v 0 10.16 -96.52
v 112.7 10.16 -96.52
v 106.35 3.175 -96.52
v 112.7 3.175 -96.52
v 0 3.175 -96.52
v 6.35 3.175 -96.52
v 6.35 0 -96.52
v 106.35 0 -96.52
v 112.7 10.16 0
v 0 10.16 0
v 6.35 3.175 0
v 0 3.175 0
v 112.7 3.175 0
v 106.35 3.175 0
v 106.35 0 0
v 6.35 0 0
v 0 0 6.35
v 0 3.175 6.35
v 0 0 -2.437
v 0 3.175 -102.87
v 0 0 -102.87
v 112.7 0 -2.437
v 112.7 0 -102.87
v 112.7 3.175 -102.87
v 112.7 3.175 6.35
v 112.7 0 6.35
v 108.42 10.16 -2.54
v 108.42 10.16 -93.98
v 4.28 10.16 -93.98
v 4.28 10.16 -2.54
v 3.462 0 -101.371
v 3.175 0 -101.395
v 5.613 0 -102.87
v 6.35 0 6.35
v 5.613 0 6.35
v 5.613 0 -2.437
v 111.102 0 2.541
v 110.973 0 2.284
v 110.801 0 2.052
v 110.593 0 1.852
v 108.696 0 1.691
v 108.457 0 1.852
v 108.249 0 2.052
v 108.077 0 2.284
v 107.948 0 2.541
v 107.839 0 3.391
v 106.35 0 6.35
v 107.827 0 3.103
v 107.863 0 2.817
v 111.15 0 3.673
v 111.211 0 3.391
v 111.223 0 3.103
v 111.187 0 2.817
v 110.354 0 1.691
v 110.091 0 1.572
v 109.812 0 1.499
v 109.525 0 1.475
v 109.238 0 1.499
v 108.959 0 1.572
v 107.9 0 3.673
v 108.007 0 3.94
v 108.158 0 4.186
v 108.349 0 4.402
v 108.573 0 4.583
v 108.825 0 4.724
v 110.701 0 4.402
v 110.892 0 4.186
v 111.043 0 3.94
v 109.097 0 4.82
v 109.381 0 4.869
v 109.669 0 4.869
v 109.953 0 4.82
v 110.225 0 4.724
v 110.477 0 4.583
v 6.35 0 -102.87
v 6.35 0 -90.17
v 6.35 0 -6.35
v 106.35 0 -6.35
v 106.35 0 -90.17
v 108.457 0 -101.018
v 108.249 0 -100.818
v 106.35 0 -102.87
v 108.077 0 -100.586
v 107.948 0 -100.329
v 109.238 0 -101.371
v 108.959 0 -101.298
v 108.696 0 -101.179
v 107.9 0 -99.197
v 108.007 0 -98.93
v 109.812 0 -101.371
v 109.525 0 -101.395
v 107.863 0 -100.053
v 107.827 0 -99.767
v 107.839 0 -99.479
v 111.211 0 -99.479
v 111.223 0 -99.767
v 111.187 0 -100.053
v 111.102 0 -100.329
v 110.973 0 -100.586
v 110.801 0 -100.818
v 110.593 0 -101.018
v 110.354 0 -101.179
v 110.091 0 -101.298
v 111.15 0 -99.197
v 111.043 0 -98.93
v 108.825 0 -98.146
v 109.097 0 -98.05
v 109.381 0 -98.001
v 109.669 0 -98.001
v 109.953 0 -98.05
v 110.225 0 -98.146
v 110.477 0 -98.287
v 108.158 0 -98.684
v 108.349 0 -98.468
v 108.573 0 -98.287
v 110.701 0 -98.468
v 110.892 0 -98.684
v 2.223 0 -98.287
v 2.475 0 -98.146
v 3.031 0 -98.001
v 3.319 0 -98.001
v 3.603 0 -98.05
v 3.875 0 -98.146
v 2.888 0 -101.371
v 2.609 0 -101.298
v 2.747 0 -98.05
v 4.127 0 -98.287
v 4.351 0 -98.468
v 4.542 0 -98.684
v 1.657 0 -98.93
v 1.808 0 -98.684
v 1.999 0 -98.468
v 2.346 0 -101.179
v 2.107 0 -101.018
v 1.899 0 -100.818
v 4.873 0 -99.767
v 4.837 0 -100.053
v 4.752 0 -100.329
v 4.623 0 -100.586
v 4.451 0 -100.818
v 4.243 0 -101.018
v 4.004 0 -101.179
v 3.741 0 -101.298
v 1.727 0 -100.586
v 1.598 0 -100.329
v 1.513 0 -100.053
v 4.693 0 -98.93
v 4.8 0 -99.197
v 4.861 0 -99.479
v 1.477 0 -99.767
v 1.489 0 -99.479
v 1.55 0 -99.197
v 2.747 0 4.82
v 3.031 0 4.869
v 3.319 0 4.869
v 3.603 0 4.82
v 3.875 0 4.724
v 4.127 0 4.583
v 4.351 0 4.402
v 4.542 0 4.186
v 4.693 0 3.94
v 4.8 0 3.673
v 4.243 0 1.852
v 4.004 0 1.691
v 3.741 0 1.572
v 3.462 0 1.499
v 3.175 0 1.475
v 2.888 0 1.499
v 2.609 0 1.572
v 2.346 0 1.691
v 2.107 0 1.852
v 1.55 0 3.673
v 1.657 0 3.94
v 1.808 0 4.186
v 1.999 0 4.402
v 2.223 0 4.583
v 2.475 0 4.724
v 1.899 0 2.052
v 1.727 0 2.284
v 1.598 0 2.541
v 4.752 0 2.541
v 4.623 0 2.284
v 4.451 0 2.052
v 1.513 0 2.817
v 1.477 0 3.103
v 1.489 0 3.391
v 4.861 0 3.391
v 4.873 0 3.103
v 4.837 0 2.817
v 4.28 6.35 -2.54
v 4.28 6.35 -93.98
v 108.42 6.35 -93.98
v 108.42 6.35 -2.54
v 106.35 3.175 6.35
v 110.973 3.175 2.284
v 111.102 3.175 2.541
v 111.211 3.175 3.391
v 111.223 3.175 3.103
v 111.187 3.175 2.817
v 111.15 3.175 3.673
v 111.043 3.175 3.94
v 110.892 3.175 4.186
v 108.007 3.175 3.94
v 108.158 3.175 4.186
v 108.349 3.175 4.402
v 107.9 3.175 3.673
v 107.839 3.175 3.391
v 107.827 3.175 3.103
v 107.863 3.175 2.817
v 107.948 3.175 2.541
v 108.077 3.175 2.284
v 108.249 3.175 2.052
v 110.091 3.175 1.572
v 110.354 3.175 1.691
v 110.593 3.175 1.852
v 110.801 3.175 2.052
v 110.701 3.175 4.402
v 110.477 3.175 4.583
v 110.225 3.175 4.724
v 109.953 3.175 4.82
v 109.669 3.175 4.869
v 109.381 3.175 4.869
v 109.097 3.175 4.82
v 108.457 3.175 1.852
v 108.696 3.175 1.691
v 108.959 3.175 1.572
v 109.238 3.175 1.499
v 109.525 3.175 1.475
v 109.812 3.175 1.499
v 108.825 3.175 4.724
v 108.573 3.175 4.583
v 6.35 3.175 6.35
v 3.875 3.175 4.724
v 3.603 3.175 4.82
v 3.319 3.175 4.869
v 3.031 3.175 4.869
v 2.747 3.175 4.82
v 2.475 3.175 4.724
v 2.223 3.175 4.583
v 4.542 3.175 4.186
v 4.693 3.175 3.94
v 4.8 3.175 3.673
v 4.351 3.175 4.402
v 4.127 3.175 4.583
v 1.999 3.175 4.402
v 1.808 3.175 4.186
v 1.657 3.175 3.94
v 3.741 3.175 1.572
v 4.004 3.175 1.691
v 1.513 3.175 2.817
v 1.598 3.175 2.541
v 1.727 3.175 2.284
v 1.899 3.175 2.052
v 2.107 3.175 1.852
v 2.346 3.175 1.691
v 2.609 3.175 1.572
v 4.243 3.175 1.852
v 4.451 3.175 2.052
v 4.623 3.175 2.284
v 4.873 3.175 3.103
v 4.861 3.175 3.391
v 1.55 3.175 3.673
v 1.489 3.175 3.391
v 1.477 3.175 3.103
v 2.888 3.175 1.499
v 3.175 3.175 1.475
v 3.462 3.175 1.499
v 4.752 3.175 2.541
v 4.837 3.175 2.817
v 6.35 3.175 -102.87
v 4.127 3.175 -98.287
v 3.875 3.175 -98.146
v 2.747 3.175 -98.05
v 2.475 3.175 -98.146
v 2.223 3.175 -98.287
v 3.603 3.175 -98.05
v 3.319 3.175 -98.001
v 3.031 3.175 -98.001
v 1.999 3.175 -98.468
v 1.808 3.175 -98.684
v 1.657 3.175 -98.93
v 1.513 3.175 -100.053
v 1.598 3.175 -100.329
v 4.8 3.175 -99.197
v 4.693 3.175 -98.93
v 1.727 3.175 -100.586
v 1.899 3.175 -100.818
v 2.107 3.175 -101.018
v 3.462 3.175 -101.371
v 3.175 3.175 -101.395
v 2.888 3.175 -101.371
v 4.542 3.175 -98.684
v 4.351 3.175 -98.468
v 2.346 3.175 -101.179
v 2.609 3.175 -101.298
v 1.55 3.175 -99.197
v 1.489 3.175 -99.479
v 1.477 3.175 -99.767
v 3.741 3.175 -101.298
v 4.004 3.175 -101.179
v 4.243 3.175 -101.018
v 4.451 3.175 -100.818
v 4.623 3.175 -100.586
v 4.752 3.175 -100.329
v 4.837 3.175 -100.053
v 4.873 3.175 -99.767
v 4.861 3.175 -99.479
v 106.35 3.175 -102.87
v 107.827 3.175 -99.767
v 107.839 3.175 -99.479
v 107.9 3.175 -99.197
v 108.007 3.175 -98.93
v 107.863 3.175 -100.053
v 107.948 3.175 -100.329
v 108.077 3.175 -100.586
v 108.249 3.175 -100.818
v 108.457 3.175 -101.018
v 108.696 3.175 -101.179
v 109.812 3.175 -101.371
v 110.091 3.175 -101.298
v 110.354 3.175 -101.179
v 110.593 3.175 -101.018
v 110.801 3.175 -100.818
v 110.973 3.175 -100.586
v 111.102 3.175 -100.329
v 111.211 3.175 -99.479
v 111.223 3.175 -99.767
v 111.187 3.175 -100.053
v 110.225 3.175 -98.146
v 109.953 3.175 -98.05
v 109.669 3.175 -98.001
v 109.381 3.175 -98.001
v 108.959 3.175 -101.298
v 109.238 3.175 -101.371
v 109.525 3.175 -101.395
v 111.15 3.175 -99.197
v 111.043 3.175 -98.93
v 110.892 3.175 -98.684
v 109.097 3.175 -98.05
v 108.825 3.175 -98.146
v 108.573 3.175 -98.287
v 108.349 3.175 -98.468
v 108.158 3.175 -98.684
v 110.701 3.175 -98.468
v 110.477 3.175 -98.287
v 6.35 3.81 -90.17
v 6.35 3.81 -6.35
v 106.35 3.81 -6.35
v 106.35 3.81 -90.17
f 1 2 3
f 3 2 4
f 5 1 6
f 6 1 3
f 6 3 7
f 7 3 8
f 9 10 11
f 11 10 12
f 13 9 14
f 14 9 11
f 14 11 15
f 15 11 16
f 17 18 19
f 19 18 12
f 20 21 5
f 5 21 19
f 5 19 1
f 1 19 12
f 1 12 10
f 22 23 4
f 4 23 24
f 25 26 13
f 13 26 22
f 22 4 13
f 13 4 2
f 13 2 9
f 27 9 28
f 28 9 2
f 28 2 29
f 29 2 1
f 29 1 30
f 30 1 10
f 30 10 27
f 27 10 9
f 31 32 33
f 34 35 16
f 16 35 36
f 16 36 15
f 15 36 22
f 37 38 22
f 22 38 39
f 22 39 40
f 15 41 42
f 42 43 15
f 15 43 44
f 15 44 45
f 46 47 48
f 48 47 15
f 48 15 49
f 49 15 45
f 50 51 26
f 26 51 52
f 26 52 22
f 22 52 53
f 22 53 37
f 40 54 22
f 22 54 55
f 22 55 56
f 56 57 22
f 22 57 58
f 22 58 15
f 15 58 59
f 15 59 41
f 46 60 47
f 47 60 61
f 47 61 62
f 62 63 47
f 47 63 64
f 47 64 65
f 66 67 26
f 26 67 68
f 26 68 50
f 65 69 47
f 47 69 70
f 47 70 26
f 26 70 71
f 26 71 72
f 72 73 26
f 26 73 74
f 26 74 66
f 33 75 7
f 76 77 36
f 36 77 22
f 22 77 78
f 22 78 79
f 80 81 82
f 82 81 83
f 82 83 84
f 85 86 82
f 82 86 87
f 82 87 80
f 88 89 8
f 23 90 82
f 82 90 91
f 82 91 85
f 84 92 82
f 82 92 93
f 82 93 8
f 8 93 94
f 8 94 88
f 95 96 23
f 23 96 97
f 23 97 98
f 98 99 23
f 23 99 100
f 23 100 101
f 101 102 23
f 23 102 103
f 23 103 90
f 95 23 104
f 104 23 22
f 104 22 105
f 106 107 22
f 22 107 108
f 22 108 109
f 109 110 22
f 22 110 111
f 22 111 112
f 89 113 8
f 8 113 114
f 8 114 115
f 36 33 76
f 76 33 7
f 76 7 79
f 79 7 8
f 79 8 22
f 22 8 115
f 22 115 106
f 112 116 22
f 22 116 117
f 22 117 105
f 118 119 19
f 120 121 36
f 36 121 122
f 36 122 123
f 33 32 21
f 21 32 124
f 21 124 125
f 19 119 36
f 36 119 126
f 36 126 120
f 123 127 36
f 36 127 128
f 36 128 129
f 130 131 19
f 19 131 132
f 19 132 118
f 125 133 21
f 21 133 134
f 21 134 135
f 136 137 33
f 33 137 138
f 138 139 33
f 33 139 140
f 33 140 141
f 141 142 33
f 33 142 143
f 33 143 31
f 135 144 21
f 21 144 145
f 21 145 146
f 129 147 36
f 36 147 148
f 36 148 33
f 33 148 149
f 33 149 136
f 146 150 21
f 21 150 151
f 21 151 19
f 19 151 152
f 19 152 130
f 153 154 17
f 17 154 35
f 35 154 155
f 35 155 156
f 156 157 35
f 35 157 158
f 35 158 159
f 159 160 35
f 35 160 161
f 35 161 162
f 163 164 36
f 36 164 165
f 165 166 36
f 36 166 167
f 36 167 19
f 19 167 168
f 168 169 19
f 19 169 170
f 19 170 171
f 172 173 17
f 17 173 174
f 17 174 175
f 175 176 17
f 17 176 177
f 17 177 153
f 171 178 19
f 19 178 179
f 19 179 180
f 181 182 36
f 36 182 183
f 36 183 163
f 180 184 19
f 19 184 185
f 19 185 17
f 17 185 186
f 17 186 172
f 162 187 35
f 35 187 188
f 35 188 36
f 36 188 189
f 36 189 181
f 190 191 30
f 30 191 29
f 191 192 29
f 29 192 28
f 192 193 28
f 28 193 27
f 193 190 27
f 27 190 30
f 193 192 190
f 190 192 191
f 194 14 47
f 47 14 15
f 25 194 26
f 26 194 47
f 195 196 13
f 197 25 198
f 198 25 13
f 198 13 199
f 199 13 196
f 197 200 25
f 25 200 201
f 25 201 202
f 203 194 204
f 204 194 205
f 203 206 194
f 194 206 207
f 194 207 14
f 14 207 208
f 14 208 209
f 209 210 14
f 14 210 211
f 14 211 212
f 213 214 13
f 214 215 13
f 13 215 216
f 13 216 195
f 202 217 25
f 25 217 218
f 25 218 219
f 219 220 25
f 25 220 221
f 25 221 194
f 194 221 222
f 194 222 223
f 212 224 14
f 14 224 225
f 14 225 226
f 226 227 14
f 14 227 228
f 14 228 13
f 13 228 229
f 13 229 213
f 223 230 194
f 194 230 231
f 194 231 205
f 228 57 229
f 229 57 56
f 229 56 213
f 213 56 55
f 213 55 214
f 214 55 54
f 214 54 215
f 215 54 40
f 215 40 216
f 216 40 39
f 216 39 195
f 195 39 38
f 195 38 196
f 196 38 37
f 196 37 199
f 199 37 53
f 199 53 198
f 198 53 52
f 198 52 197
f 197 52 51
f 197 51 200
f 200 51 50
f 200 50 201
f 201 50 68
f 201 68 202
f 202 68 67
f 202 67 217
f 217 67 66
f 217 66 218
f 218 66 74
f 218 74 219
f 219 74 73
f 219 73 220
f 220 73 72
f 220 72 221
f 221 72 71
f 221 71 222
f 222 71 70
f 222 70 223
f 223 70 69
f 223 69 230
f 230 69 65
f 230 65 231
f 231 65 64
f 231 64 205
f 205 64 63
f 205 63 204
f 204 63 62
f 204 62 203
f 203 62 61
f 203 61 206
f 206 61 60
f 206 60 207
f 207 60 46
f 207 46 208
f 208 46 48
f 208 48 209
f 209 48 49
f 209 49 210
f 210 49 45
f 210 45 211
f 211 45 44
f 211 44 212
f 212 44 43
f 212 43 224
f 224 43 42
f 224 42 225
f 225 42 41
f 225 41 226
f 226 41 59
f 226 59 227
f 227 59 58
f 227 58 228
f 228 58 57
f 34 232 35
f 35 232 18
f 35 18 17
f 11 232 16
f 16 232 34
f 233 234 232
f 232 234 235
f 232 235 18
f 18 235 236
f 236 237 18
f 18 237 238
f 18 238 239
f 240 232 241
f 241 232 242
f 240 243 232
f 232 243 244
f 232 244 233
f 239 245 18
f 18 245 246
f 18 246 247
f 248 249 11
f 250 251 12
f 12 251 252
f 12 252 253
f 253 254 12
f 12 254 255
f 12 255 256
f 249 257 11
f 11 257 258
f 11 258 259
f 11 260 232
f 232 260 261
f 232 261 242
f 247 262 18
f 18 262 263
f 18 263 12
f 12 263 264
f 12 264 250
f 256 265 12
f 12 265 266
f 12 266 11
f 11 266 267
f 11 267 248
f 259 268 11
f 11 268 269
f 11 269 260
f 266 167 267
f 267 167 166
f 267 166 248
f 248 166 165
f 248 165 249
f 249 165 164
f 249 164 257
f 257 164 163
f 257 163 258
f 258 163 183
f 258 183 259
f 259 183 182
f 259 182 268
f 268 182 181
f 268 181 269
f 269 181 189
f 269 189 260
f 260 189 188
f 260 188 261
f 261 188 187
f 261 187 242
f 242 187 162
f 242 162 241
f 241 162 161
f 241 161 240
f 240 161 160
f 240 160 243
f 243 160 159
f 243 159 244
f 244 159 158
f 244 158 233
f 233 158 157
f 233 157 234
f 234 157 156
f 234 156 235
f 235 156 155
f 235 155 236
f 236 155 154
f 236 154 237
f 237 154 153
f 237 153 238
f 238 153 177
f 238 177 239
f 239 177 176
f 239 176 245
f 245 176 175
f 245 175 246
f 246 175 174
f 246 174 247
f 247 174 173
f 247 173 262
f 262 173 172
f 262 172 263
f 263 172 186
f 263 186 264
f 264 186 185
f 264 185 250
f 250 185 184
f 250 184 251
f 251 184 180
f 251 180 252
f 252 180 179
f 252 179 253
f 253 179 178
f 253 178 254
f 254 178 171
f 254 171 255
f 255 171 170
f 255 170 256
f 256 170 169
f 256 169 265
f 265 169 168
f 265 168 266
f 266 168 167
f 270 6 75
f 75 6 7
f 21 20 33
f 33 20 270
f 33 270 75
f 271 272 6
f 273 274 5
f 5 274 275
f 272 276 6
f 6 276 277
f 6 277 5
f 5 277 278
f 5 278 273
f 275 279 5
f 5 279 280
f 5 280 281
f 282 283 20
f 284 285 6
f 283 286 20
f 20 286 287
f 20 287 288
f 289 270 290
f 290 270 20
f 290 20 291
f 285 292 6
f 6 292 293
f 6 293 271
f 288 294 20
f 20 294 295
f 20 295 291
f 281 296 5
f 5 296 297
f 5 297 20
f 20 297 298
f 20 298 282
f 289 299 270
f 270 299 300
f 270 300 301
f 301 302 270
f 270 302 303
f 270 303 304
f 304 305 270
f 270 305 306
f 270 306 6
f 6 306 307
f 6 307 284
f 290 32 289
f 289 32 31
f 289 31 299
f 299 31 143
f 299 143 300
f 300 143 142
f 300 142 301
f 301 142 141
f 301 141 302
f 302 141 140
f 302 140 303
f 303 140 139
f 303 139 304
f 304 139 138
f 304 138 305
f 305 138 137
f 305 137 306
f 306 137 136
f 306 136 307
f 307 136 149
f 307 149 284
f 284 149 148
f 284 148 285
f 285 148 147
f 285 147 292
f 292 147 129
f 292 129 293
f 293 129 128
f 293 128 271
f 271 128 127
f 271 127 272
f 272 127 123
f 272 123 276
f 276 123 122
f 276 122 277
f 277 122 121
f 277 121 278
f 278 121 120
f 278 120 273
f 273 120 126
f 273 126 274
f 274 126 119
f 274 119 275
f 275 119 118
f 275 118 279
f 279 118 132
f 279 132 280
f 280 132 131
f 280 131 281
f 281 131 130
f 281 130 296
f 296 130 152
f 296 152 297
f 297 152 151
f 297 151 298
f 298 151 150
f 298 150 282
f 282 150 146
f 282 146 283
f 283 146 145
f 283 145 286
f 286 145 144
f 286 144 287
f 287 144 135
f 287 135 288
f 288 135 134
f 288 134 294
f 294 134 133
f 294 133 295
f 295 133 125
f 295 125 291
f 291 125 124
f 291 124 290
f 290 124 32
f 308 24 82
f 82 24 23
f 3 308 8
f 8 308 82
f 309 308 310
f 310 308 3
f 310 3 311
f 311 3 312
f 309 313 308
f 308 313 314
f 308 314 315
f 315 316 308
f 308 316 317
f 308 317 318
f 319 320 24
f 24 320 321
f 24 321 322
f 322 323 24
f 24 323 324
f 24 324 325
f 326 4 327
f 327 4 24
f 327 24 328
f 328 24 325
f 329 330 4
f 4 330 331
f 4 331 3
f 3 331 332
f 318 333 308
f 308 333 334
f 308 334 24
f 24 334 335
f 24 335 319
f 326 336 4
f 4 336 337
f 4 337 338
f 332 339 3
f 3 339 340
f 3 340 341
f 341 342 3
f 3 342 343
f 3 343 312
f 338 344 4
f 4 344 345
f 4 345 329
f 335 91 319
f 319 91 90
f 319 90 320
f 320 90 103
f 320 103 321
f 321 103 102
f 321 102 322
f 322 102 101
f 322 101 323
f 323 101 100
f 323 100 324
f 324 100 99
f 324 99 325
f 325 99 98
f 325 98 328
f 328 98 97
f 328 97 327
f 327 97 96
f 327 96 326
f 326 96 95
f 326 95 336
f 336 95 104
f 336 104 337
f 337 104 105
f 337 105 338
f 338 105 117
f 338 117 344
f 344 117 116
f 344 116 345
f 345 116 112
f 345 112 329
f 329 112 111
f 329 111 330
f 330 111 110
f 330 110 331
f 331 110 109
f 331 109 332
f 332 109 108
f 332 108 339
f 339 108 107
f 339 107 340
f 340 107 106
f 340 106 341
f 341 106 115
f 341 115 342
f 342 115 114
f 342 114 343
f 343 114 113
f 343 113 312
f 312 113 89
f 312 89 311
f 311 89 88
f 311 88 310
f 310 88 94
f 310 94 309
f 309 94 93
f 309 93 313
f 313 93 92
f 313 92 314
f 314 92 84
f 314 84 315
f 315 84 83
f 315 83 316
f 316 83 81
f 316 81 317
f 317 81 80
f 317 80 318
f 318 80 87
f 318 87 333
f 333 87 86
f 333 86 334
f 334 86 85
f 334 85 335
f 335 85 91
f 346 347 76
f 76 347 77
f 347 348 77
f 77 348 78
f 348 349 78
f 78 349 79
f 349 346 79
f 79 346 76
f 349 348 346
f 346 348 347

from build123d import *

# Parameters (mm, degrees)
SKETCH1_W           = 112.699999898
SKETCH1_H           = 96.52
BOSS_EXTRUDE1_DEPTH = 10.16
SKETCH2_W           = 104.14
SKETCH2_H           = 91.44
CUT_EXTRUDE1_DEPTH  = 3.81
SKETCH3_W           = 6.35
SKETCH3_H           = 6.35
SKETCH3_R           = 1.7
BOSS_EXTRUDE2_DEPTH = 3.175
SKETCH4_W           = 99.999999898
SKETCH4_H           = 83.82
CUT_EXTRUDE2_DEPTH  = 3.81


with BuildPart() as part:
    # Sketch1 → Boss-Extrude1 (new body)
    with BuildSketch(Plane(origin=(0, 0, 0), x_dir=(1, 0, 0), z_dir=(0, 1, 0))):
        with Locations((56.349999949, 48.26)):
            Rectangle(SKETCH1_W, SKETCH1_H)
    extrude(amount=BOSS_EXTRUDE1_DEPTH)

    # Sketch2 → Cut-Extrude1 (cut)
    with BuildSketch(Plane(origin=(0, 10.16, 0), x_dir=(1, 0, 0), z_dir=(0, 1, 0))):
        with Locations((56.349999949, 48.26)):
            Rectangle(SKETCH2_W, SKETCH2_H)
    extrude(amount=-CUT_EXTRUDE1_DEPTH, mode=Mode.SUBTRACT)

    # Sketch3 → Boss-Extrude2 (add)
    # profile 1 of 4: a face of its own
    with BuildSketch(Plane.XZ):
        with Locations((109.524999898, 3.175)):
            Rectangle(SKETCH3_W, SKETCH3_H)
        with Locations(Location((109.524999898, 3.175, 0), (0, 0, 270))):
            Circle(SKETCH3_R, mode=Mode.SUBTRACT)
    # profile 2 of 4: a face of its own
    with BuildSketch(Plane.XZ):
        with Locations((3.175, 3.175)):
            Rectangle(SKETCH3_W, SKETCH3_H)
        with Locations(Location((3.175, 3.175, 0), (0, 0, 270))):
            Circle(SKETCH3_R, mode=Mode.SUBTRACT)
    # profile 3 of 4: a face of its own
    with BuildSketch(Plane.XZ):
        with Locations((3.175, -99.695)):
            Rectangle(SKETCH3_W, SKETCH3_H)
        with Locations(Location((3.175, -99.695, 0), (0, 0, 270))):
            Circle(SKETCH3_R, mode=Mode.SUBTRACT)
    # profile 4 of 4: a face of its own
    with BuildSketch(Plane.XZ):
        with Locations((109.524999898, -99.695)):
            Rectangle(SKETCH3_W, SKETCH3_H)
        with Locations(Location((109.524999898, -99.695, 0), (0, 0, 270))):
            Circle(SKETCH3_R, mode=Mode.SUBTRACT)
    extrude(amount=-BOSS_EXTRUDE2_DEPTH)

    # Sketch4 → Cut-Extrude2 (cut)
    with BuildSketch(Plane.XZ):
        with Locations((56.349999949, -48.26)):
            Rectangle(SKETCH4_W, SKETCH4_H)
    extrude(amount=-CUT_EXTRUDE2_DEPTH, mode=Mode.SUBTRACT)


solid = part.part
